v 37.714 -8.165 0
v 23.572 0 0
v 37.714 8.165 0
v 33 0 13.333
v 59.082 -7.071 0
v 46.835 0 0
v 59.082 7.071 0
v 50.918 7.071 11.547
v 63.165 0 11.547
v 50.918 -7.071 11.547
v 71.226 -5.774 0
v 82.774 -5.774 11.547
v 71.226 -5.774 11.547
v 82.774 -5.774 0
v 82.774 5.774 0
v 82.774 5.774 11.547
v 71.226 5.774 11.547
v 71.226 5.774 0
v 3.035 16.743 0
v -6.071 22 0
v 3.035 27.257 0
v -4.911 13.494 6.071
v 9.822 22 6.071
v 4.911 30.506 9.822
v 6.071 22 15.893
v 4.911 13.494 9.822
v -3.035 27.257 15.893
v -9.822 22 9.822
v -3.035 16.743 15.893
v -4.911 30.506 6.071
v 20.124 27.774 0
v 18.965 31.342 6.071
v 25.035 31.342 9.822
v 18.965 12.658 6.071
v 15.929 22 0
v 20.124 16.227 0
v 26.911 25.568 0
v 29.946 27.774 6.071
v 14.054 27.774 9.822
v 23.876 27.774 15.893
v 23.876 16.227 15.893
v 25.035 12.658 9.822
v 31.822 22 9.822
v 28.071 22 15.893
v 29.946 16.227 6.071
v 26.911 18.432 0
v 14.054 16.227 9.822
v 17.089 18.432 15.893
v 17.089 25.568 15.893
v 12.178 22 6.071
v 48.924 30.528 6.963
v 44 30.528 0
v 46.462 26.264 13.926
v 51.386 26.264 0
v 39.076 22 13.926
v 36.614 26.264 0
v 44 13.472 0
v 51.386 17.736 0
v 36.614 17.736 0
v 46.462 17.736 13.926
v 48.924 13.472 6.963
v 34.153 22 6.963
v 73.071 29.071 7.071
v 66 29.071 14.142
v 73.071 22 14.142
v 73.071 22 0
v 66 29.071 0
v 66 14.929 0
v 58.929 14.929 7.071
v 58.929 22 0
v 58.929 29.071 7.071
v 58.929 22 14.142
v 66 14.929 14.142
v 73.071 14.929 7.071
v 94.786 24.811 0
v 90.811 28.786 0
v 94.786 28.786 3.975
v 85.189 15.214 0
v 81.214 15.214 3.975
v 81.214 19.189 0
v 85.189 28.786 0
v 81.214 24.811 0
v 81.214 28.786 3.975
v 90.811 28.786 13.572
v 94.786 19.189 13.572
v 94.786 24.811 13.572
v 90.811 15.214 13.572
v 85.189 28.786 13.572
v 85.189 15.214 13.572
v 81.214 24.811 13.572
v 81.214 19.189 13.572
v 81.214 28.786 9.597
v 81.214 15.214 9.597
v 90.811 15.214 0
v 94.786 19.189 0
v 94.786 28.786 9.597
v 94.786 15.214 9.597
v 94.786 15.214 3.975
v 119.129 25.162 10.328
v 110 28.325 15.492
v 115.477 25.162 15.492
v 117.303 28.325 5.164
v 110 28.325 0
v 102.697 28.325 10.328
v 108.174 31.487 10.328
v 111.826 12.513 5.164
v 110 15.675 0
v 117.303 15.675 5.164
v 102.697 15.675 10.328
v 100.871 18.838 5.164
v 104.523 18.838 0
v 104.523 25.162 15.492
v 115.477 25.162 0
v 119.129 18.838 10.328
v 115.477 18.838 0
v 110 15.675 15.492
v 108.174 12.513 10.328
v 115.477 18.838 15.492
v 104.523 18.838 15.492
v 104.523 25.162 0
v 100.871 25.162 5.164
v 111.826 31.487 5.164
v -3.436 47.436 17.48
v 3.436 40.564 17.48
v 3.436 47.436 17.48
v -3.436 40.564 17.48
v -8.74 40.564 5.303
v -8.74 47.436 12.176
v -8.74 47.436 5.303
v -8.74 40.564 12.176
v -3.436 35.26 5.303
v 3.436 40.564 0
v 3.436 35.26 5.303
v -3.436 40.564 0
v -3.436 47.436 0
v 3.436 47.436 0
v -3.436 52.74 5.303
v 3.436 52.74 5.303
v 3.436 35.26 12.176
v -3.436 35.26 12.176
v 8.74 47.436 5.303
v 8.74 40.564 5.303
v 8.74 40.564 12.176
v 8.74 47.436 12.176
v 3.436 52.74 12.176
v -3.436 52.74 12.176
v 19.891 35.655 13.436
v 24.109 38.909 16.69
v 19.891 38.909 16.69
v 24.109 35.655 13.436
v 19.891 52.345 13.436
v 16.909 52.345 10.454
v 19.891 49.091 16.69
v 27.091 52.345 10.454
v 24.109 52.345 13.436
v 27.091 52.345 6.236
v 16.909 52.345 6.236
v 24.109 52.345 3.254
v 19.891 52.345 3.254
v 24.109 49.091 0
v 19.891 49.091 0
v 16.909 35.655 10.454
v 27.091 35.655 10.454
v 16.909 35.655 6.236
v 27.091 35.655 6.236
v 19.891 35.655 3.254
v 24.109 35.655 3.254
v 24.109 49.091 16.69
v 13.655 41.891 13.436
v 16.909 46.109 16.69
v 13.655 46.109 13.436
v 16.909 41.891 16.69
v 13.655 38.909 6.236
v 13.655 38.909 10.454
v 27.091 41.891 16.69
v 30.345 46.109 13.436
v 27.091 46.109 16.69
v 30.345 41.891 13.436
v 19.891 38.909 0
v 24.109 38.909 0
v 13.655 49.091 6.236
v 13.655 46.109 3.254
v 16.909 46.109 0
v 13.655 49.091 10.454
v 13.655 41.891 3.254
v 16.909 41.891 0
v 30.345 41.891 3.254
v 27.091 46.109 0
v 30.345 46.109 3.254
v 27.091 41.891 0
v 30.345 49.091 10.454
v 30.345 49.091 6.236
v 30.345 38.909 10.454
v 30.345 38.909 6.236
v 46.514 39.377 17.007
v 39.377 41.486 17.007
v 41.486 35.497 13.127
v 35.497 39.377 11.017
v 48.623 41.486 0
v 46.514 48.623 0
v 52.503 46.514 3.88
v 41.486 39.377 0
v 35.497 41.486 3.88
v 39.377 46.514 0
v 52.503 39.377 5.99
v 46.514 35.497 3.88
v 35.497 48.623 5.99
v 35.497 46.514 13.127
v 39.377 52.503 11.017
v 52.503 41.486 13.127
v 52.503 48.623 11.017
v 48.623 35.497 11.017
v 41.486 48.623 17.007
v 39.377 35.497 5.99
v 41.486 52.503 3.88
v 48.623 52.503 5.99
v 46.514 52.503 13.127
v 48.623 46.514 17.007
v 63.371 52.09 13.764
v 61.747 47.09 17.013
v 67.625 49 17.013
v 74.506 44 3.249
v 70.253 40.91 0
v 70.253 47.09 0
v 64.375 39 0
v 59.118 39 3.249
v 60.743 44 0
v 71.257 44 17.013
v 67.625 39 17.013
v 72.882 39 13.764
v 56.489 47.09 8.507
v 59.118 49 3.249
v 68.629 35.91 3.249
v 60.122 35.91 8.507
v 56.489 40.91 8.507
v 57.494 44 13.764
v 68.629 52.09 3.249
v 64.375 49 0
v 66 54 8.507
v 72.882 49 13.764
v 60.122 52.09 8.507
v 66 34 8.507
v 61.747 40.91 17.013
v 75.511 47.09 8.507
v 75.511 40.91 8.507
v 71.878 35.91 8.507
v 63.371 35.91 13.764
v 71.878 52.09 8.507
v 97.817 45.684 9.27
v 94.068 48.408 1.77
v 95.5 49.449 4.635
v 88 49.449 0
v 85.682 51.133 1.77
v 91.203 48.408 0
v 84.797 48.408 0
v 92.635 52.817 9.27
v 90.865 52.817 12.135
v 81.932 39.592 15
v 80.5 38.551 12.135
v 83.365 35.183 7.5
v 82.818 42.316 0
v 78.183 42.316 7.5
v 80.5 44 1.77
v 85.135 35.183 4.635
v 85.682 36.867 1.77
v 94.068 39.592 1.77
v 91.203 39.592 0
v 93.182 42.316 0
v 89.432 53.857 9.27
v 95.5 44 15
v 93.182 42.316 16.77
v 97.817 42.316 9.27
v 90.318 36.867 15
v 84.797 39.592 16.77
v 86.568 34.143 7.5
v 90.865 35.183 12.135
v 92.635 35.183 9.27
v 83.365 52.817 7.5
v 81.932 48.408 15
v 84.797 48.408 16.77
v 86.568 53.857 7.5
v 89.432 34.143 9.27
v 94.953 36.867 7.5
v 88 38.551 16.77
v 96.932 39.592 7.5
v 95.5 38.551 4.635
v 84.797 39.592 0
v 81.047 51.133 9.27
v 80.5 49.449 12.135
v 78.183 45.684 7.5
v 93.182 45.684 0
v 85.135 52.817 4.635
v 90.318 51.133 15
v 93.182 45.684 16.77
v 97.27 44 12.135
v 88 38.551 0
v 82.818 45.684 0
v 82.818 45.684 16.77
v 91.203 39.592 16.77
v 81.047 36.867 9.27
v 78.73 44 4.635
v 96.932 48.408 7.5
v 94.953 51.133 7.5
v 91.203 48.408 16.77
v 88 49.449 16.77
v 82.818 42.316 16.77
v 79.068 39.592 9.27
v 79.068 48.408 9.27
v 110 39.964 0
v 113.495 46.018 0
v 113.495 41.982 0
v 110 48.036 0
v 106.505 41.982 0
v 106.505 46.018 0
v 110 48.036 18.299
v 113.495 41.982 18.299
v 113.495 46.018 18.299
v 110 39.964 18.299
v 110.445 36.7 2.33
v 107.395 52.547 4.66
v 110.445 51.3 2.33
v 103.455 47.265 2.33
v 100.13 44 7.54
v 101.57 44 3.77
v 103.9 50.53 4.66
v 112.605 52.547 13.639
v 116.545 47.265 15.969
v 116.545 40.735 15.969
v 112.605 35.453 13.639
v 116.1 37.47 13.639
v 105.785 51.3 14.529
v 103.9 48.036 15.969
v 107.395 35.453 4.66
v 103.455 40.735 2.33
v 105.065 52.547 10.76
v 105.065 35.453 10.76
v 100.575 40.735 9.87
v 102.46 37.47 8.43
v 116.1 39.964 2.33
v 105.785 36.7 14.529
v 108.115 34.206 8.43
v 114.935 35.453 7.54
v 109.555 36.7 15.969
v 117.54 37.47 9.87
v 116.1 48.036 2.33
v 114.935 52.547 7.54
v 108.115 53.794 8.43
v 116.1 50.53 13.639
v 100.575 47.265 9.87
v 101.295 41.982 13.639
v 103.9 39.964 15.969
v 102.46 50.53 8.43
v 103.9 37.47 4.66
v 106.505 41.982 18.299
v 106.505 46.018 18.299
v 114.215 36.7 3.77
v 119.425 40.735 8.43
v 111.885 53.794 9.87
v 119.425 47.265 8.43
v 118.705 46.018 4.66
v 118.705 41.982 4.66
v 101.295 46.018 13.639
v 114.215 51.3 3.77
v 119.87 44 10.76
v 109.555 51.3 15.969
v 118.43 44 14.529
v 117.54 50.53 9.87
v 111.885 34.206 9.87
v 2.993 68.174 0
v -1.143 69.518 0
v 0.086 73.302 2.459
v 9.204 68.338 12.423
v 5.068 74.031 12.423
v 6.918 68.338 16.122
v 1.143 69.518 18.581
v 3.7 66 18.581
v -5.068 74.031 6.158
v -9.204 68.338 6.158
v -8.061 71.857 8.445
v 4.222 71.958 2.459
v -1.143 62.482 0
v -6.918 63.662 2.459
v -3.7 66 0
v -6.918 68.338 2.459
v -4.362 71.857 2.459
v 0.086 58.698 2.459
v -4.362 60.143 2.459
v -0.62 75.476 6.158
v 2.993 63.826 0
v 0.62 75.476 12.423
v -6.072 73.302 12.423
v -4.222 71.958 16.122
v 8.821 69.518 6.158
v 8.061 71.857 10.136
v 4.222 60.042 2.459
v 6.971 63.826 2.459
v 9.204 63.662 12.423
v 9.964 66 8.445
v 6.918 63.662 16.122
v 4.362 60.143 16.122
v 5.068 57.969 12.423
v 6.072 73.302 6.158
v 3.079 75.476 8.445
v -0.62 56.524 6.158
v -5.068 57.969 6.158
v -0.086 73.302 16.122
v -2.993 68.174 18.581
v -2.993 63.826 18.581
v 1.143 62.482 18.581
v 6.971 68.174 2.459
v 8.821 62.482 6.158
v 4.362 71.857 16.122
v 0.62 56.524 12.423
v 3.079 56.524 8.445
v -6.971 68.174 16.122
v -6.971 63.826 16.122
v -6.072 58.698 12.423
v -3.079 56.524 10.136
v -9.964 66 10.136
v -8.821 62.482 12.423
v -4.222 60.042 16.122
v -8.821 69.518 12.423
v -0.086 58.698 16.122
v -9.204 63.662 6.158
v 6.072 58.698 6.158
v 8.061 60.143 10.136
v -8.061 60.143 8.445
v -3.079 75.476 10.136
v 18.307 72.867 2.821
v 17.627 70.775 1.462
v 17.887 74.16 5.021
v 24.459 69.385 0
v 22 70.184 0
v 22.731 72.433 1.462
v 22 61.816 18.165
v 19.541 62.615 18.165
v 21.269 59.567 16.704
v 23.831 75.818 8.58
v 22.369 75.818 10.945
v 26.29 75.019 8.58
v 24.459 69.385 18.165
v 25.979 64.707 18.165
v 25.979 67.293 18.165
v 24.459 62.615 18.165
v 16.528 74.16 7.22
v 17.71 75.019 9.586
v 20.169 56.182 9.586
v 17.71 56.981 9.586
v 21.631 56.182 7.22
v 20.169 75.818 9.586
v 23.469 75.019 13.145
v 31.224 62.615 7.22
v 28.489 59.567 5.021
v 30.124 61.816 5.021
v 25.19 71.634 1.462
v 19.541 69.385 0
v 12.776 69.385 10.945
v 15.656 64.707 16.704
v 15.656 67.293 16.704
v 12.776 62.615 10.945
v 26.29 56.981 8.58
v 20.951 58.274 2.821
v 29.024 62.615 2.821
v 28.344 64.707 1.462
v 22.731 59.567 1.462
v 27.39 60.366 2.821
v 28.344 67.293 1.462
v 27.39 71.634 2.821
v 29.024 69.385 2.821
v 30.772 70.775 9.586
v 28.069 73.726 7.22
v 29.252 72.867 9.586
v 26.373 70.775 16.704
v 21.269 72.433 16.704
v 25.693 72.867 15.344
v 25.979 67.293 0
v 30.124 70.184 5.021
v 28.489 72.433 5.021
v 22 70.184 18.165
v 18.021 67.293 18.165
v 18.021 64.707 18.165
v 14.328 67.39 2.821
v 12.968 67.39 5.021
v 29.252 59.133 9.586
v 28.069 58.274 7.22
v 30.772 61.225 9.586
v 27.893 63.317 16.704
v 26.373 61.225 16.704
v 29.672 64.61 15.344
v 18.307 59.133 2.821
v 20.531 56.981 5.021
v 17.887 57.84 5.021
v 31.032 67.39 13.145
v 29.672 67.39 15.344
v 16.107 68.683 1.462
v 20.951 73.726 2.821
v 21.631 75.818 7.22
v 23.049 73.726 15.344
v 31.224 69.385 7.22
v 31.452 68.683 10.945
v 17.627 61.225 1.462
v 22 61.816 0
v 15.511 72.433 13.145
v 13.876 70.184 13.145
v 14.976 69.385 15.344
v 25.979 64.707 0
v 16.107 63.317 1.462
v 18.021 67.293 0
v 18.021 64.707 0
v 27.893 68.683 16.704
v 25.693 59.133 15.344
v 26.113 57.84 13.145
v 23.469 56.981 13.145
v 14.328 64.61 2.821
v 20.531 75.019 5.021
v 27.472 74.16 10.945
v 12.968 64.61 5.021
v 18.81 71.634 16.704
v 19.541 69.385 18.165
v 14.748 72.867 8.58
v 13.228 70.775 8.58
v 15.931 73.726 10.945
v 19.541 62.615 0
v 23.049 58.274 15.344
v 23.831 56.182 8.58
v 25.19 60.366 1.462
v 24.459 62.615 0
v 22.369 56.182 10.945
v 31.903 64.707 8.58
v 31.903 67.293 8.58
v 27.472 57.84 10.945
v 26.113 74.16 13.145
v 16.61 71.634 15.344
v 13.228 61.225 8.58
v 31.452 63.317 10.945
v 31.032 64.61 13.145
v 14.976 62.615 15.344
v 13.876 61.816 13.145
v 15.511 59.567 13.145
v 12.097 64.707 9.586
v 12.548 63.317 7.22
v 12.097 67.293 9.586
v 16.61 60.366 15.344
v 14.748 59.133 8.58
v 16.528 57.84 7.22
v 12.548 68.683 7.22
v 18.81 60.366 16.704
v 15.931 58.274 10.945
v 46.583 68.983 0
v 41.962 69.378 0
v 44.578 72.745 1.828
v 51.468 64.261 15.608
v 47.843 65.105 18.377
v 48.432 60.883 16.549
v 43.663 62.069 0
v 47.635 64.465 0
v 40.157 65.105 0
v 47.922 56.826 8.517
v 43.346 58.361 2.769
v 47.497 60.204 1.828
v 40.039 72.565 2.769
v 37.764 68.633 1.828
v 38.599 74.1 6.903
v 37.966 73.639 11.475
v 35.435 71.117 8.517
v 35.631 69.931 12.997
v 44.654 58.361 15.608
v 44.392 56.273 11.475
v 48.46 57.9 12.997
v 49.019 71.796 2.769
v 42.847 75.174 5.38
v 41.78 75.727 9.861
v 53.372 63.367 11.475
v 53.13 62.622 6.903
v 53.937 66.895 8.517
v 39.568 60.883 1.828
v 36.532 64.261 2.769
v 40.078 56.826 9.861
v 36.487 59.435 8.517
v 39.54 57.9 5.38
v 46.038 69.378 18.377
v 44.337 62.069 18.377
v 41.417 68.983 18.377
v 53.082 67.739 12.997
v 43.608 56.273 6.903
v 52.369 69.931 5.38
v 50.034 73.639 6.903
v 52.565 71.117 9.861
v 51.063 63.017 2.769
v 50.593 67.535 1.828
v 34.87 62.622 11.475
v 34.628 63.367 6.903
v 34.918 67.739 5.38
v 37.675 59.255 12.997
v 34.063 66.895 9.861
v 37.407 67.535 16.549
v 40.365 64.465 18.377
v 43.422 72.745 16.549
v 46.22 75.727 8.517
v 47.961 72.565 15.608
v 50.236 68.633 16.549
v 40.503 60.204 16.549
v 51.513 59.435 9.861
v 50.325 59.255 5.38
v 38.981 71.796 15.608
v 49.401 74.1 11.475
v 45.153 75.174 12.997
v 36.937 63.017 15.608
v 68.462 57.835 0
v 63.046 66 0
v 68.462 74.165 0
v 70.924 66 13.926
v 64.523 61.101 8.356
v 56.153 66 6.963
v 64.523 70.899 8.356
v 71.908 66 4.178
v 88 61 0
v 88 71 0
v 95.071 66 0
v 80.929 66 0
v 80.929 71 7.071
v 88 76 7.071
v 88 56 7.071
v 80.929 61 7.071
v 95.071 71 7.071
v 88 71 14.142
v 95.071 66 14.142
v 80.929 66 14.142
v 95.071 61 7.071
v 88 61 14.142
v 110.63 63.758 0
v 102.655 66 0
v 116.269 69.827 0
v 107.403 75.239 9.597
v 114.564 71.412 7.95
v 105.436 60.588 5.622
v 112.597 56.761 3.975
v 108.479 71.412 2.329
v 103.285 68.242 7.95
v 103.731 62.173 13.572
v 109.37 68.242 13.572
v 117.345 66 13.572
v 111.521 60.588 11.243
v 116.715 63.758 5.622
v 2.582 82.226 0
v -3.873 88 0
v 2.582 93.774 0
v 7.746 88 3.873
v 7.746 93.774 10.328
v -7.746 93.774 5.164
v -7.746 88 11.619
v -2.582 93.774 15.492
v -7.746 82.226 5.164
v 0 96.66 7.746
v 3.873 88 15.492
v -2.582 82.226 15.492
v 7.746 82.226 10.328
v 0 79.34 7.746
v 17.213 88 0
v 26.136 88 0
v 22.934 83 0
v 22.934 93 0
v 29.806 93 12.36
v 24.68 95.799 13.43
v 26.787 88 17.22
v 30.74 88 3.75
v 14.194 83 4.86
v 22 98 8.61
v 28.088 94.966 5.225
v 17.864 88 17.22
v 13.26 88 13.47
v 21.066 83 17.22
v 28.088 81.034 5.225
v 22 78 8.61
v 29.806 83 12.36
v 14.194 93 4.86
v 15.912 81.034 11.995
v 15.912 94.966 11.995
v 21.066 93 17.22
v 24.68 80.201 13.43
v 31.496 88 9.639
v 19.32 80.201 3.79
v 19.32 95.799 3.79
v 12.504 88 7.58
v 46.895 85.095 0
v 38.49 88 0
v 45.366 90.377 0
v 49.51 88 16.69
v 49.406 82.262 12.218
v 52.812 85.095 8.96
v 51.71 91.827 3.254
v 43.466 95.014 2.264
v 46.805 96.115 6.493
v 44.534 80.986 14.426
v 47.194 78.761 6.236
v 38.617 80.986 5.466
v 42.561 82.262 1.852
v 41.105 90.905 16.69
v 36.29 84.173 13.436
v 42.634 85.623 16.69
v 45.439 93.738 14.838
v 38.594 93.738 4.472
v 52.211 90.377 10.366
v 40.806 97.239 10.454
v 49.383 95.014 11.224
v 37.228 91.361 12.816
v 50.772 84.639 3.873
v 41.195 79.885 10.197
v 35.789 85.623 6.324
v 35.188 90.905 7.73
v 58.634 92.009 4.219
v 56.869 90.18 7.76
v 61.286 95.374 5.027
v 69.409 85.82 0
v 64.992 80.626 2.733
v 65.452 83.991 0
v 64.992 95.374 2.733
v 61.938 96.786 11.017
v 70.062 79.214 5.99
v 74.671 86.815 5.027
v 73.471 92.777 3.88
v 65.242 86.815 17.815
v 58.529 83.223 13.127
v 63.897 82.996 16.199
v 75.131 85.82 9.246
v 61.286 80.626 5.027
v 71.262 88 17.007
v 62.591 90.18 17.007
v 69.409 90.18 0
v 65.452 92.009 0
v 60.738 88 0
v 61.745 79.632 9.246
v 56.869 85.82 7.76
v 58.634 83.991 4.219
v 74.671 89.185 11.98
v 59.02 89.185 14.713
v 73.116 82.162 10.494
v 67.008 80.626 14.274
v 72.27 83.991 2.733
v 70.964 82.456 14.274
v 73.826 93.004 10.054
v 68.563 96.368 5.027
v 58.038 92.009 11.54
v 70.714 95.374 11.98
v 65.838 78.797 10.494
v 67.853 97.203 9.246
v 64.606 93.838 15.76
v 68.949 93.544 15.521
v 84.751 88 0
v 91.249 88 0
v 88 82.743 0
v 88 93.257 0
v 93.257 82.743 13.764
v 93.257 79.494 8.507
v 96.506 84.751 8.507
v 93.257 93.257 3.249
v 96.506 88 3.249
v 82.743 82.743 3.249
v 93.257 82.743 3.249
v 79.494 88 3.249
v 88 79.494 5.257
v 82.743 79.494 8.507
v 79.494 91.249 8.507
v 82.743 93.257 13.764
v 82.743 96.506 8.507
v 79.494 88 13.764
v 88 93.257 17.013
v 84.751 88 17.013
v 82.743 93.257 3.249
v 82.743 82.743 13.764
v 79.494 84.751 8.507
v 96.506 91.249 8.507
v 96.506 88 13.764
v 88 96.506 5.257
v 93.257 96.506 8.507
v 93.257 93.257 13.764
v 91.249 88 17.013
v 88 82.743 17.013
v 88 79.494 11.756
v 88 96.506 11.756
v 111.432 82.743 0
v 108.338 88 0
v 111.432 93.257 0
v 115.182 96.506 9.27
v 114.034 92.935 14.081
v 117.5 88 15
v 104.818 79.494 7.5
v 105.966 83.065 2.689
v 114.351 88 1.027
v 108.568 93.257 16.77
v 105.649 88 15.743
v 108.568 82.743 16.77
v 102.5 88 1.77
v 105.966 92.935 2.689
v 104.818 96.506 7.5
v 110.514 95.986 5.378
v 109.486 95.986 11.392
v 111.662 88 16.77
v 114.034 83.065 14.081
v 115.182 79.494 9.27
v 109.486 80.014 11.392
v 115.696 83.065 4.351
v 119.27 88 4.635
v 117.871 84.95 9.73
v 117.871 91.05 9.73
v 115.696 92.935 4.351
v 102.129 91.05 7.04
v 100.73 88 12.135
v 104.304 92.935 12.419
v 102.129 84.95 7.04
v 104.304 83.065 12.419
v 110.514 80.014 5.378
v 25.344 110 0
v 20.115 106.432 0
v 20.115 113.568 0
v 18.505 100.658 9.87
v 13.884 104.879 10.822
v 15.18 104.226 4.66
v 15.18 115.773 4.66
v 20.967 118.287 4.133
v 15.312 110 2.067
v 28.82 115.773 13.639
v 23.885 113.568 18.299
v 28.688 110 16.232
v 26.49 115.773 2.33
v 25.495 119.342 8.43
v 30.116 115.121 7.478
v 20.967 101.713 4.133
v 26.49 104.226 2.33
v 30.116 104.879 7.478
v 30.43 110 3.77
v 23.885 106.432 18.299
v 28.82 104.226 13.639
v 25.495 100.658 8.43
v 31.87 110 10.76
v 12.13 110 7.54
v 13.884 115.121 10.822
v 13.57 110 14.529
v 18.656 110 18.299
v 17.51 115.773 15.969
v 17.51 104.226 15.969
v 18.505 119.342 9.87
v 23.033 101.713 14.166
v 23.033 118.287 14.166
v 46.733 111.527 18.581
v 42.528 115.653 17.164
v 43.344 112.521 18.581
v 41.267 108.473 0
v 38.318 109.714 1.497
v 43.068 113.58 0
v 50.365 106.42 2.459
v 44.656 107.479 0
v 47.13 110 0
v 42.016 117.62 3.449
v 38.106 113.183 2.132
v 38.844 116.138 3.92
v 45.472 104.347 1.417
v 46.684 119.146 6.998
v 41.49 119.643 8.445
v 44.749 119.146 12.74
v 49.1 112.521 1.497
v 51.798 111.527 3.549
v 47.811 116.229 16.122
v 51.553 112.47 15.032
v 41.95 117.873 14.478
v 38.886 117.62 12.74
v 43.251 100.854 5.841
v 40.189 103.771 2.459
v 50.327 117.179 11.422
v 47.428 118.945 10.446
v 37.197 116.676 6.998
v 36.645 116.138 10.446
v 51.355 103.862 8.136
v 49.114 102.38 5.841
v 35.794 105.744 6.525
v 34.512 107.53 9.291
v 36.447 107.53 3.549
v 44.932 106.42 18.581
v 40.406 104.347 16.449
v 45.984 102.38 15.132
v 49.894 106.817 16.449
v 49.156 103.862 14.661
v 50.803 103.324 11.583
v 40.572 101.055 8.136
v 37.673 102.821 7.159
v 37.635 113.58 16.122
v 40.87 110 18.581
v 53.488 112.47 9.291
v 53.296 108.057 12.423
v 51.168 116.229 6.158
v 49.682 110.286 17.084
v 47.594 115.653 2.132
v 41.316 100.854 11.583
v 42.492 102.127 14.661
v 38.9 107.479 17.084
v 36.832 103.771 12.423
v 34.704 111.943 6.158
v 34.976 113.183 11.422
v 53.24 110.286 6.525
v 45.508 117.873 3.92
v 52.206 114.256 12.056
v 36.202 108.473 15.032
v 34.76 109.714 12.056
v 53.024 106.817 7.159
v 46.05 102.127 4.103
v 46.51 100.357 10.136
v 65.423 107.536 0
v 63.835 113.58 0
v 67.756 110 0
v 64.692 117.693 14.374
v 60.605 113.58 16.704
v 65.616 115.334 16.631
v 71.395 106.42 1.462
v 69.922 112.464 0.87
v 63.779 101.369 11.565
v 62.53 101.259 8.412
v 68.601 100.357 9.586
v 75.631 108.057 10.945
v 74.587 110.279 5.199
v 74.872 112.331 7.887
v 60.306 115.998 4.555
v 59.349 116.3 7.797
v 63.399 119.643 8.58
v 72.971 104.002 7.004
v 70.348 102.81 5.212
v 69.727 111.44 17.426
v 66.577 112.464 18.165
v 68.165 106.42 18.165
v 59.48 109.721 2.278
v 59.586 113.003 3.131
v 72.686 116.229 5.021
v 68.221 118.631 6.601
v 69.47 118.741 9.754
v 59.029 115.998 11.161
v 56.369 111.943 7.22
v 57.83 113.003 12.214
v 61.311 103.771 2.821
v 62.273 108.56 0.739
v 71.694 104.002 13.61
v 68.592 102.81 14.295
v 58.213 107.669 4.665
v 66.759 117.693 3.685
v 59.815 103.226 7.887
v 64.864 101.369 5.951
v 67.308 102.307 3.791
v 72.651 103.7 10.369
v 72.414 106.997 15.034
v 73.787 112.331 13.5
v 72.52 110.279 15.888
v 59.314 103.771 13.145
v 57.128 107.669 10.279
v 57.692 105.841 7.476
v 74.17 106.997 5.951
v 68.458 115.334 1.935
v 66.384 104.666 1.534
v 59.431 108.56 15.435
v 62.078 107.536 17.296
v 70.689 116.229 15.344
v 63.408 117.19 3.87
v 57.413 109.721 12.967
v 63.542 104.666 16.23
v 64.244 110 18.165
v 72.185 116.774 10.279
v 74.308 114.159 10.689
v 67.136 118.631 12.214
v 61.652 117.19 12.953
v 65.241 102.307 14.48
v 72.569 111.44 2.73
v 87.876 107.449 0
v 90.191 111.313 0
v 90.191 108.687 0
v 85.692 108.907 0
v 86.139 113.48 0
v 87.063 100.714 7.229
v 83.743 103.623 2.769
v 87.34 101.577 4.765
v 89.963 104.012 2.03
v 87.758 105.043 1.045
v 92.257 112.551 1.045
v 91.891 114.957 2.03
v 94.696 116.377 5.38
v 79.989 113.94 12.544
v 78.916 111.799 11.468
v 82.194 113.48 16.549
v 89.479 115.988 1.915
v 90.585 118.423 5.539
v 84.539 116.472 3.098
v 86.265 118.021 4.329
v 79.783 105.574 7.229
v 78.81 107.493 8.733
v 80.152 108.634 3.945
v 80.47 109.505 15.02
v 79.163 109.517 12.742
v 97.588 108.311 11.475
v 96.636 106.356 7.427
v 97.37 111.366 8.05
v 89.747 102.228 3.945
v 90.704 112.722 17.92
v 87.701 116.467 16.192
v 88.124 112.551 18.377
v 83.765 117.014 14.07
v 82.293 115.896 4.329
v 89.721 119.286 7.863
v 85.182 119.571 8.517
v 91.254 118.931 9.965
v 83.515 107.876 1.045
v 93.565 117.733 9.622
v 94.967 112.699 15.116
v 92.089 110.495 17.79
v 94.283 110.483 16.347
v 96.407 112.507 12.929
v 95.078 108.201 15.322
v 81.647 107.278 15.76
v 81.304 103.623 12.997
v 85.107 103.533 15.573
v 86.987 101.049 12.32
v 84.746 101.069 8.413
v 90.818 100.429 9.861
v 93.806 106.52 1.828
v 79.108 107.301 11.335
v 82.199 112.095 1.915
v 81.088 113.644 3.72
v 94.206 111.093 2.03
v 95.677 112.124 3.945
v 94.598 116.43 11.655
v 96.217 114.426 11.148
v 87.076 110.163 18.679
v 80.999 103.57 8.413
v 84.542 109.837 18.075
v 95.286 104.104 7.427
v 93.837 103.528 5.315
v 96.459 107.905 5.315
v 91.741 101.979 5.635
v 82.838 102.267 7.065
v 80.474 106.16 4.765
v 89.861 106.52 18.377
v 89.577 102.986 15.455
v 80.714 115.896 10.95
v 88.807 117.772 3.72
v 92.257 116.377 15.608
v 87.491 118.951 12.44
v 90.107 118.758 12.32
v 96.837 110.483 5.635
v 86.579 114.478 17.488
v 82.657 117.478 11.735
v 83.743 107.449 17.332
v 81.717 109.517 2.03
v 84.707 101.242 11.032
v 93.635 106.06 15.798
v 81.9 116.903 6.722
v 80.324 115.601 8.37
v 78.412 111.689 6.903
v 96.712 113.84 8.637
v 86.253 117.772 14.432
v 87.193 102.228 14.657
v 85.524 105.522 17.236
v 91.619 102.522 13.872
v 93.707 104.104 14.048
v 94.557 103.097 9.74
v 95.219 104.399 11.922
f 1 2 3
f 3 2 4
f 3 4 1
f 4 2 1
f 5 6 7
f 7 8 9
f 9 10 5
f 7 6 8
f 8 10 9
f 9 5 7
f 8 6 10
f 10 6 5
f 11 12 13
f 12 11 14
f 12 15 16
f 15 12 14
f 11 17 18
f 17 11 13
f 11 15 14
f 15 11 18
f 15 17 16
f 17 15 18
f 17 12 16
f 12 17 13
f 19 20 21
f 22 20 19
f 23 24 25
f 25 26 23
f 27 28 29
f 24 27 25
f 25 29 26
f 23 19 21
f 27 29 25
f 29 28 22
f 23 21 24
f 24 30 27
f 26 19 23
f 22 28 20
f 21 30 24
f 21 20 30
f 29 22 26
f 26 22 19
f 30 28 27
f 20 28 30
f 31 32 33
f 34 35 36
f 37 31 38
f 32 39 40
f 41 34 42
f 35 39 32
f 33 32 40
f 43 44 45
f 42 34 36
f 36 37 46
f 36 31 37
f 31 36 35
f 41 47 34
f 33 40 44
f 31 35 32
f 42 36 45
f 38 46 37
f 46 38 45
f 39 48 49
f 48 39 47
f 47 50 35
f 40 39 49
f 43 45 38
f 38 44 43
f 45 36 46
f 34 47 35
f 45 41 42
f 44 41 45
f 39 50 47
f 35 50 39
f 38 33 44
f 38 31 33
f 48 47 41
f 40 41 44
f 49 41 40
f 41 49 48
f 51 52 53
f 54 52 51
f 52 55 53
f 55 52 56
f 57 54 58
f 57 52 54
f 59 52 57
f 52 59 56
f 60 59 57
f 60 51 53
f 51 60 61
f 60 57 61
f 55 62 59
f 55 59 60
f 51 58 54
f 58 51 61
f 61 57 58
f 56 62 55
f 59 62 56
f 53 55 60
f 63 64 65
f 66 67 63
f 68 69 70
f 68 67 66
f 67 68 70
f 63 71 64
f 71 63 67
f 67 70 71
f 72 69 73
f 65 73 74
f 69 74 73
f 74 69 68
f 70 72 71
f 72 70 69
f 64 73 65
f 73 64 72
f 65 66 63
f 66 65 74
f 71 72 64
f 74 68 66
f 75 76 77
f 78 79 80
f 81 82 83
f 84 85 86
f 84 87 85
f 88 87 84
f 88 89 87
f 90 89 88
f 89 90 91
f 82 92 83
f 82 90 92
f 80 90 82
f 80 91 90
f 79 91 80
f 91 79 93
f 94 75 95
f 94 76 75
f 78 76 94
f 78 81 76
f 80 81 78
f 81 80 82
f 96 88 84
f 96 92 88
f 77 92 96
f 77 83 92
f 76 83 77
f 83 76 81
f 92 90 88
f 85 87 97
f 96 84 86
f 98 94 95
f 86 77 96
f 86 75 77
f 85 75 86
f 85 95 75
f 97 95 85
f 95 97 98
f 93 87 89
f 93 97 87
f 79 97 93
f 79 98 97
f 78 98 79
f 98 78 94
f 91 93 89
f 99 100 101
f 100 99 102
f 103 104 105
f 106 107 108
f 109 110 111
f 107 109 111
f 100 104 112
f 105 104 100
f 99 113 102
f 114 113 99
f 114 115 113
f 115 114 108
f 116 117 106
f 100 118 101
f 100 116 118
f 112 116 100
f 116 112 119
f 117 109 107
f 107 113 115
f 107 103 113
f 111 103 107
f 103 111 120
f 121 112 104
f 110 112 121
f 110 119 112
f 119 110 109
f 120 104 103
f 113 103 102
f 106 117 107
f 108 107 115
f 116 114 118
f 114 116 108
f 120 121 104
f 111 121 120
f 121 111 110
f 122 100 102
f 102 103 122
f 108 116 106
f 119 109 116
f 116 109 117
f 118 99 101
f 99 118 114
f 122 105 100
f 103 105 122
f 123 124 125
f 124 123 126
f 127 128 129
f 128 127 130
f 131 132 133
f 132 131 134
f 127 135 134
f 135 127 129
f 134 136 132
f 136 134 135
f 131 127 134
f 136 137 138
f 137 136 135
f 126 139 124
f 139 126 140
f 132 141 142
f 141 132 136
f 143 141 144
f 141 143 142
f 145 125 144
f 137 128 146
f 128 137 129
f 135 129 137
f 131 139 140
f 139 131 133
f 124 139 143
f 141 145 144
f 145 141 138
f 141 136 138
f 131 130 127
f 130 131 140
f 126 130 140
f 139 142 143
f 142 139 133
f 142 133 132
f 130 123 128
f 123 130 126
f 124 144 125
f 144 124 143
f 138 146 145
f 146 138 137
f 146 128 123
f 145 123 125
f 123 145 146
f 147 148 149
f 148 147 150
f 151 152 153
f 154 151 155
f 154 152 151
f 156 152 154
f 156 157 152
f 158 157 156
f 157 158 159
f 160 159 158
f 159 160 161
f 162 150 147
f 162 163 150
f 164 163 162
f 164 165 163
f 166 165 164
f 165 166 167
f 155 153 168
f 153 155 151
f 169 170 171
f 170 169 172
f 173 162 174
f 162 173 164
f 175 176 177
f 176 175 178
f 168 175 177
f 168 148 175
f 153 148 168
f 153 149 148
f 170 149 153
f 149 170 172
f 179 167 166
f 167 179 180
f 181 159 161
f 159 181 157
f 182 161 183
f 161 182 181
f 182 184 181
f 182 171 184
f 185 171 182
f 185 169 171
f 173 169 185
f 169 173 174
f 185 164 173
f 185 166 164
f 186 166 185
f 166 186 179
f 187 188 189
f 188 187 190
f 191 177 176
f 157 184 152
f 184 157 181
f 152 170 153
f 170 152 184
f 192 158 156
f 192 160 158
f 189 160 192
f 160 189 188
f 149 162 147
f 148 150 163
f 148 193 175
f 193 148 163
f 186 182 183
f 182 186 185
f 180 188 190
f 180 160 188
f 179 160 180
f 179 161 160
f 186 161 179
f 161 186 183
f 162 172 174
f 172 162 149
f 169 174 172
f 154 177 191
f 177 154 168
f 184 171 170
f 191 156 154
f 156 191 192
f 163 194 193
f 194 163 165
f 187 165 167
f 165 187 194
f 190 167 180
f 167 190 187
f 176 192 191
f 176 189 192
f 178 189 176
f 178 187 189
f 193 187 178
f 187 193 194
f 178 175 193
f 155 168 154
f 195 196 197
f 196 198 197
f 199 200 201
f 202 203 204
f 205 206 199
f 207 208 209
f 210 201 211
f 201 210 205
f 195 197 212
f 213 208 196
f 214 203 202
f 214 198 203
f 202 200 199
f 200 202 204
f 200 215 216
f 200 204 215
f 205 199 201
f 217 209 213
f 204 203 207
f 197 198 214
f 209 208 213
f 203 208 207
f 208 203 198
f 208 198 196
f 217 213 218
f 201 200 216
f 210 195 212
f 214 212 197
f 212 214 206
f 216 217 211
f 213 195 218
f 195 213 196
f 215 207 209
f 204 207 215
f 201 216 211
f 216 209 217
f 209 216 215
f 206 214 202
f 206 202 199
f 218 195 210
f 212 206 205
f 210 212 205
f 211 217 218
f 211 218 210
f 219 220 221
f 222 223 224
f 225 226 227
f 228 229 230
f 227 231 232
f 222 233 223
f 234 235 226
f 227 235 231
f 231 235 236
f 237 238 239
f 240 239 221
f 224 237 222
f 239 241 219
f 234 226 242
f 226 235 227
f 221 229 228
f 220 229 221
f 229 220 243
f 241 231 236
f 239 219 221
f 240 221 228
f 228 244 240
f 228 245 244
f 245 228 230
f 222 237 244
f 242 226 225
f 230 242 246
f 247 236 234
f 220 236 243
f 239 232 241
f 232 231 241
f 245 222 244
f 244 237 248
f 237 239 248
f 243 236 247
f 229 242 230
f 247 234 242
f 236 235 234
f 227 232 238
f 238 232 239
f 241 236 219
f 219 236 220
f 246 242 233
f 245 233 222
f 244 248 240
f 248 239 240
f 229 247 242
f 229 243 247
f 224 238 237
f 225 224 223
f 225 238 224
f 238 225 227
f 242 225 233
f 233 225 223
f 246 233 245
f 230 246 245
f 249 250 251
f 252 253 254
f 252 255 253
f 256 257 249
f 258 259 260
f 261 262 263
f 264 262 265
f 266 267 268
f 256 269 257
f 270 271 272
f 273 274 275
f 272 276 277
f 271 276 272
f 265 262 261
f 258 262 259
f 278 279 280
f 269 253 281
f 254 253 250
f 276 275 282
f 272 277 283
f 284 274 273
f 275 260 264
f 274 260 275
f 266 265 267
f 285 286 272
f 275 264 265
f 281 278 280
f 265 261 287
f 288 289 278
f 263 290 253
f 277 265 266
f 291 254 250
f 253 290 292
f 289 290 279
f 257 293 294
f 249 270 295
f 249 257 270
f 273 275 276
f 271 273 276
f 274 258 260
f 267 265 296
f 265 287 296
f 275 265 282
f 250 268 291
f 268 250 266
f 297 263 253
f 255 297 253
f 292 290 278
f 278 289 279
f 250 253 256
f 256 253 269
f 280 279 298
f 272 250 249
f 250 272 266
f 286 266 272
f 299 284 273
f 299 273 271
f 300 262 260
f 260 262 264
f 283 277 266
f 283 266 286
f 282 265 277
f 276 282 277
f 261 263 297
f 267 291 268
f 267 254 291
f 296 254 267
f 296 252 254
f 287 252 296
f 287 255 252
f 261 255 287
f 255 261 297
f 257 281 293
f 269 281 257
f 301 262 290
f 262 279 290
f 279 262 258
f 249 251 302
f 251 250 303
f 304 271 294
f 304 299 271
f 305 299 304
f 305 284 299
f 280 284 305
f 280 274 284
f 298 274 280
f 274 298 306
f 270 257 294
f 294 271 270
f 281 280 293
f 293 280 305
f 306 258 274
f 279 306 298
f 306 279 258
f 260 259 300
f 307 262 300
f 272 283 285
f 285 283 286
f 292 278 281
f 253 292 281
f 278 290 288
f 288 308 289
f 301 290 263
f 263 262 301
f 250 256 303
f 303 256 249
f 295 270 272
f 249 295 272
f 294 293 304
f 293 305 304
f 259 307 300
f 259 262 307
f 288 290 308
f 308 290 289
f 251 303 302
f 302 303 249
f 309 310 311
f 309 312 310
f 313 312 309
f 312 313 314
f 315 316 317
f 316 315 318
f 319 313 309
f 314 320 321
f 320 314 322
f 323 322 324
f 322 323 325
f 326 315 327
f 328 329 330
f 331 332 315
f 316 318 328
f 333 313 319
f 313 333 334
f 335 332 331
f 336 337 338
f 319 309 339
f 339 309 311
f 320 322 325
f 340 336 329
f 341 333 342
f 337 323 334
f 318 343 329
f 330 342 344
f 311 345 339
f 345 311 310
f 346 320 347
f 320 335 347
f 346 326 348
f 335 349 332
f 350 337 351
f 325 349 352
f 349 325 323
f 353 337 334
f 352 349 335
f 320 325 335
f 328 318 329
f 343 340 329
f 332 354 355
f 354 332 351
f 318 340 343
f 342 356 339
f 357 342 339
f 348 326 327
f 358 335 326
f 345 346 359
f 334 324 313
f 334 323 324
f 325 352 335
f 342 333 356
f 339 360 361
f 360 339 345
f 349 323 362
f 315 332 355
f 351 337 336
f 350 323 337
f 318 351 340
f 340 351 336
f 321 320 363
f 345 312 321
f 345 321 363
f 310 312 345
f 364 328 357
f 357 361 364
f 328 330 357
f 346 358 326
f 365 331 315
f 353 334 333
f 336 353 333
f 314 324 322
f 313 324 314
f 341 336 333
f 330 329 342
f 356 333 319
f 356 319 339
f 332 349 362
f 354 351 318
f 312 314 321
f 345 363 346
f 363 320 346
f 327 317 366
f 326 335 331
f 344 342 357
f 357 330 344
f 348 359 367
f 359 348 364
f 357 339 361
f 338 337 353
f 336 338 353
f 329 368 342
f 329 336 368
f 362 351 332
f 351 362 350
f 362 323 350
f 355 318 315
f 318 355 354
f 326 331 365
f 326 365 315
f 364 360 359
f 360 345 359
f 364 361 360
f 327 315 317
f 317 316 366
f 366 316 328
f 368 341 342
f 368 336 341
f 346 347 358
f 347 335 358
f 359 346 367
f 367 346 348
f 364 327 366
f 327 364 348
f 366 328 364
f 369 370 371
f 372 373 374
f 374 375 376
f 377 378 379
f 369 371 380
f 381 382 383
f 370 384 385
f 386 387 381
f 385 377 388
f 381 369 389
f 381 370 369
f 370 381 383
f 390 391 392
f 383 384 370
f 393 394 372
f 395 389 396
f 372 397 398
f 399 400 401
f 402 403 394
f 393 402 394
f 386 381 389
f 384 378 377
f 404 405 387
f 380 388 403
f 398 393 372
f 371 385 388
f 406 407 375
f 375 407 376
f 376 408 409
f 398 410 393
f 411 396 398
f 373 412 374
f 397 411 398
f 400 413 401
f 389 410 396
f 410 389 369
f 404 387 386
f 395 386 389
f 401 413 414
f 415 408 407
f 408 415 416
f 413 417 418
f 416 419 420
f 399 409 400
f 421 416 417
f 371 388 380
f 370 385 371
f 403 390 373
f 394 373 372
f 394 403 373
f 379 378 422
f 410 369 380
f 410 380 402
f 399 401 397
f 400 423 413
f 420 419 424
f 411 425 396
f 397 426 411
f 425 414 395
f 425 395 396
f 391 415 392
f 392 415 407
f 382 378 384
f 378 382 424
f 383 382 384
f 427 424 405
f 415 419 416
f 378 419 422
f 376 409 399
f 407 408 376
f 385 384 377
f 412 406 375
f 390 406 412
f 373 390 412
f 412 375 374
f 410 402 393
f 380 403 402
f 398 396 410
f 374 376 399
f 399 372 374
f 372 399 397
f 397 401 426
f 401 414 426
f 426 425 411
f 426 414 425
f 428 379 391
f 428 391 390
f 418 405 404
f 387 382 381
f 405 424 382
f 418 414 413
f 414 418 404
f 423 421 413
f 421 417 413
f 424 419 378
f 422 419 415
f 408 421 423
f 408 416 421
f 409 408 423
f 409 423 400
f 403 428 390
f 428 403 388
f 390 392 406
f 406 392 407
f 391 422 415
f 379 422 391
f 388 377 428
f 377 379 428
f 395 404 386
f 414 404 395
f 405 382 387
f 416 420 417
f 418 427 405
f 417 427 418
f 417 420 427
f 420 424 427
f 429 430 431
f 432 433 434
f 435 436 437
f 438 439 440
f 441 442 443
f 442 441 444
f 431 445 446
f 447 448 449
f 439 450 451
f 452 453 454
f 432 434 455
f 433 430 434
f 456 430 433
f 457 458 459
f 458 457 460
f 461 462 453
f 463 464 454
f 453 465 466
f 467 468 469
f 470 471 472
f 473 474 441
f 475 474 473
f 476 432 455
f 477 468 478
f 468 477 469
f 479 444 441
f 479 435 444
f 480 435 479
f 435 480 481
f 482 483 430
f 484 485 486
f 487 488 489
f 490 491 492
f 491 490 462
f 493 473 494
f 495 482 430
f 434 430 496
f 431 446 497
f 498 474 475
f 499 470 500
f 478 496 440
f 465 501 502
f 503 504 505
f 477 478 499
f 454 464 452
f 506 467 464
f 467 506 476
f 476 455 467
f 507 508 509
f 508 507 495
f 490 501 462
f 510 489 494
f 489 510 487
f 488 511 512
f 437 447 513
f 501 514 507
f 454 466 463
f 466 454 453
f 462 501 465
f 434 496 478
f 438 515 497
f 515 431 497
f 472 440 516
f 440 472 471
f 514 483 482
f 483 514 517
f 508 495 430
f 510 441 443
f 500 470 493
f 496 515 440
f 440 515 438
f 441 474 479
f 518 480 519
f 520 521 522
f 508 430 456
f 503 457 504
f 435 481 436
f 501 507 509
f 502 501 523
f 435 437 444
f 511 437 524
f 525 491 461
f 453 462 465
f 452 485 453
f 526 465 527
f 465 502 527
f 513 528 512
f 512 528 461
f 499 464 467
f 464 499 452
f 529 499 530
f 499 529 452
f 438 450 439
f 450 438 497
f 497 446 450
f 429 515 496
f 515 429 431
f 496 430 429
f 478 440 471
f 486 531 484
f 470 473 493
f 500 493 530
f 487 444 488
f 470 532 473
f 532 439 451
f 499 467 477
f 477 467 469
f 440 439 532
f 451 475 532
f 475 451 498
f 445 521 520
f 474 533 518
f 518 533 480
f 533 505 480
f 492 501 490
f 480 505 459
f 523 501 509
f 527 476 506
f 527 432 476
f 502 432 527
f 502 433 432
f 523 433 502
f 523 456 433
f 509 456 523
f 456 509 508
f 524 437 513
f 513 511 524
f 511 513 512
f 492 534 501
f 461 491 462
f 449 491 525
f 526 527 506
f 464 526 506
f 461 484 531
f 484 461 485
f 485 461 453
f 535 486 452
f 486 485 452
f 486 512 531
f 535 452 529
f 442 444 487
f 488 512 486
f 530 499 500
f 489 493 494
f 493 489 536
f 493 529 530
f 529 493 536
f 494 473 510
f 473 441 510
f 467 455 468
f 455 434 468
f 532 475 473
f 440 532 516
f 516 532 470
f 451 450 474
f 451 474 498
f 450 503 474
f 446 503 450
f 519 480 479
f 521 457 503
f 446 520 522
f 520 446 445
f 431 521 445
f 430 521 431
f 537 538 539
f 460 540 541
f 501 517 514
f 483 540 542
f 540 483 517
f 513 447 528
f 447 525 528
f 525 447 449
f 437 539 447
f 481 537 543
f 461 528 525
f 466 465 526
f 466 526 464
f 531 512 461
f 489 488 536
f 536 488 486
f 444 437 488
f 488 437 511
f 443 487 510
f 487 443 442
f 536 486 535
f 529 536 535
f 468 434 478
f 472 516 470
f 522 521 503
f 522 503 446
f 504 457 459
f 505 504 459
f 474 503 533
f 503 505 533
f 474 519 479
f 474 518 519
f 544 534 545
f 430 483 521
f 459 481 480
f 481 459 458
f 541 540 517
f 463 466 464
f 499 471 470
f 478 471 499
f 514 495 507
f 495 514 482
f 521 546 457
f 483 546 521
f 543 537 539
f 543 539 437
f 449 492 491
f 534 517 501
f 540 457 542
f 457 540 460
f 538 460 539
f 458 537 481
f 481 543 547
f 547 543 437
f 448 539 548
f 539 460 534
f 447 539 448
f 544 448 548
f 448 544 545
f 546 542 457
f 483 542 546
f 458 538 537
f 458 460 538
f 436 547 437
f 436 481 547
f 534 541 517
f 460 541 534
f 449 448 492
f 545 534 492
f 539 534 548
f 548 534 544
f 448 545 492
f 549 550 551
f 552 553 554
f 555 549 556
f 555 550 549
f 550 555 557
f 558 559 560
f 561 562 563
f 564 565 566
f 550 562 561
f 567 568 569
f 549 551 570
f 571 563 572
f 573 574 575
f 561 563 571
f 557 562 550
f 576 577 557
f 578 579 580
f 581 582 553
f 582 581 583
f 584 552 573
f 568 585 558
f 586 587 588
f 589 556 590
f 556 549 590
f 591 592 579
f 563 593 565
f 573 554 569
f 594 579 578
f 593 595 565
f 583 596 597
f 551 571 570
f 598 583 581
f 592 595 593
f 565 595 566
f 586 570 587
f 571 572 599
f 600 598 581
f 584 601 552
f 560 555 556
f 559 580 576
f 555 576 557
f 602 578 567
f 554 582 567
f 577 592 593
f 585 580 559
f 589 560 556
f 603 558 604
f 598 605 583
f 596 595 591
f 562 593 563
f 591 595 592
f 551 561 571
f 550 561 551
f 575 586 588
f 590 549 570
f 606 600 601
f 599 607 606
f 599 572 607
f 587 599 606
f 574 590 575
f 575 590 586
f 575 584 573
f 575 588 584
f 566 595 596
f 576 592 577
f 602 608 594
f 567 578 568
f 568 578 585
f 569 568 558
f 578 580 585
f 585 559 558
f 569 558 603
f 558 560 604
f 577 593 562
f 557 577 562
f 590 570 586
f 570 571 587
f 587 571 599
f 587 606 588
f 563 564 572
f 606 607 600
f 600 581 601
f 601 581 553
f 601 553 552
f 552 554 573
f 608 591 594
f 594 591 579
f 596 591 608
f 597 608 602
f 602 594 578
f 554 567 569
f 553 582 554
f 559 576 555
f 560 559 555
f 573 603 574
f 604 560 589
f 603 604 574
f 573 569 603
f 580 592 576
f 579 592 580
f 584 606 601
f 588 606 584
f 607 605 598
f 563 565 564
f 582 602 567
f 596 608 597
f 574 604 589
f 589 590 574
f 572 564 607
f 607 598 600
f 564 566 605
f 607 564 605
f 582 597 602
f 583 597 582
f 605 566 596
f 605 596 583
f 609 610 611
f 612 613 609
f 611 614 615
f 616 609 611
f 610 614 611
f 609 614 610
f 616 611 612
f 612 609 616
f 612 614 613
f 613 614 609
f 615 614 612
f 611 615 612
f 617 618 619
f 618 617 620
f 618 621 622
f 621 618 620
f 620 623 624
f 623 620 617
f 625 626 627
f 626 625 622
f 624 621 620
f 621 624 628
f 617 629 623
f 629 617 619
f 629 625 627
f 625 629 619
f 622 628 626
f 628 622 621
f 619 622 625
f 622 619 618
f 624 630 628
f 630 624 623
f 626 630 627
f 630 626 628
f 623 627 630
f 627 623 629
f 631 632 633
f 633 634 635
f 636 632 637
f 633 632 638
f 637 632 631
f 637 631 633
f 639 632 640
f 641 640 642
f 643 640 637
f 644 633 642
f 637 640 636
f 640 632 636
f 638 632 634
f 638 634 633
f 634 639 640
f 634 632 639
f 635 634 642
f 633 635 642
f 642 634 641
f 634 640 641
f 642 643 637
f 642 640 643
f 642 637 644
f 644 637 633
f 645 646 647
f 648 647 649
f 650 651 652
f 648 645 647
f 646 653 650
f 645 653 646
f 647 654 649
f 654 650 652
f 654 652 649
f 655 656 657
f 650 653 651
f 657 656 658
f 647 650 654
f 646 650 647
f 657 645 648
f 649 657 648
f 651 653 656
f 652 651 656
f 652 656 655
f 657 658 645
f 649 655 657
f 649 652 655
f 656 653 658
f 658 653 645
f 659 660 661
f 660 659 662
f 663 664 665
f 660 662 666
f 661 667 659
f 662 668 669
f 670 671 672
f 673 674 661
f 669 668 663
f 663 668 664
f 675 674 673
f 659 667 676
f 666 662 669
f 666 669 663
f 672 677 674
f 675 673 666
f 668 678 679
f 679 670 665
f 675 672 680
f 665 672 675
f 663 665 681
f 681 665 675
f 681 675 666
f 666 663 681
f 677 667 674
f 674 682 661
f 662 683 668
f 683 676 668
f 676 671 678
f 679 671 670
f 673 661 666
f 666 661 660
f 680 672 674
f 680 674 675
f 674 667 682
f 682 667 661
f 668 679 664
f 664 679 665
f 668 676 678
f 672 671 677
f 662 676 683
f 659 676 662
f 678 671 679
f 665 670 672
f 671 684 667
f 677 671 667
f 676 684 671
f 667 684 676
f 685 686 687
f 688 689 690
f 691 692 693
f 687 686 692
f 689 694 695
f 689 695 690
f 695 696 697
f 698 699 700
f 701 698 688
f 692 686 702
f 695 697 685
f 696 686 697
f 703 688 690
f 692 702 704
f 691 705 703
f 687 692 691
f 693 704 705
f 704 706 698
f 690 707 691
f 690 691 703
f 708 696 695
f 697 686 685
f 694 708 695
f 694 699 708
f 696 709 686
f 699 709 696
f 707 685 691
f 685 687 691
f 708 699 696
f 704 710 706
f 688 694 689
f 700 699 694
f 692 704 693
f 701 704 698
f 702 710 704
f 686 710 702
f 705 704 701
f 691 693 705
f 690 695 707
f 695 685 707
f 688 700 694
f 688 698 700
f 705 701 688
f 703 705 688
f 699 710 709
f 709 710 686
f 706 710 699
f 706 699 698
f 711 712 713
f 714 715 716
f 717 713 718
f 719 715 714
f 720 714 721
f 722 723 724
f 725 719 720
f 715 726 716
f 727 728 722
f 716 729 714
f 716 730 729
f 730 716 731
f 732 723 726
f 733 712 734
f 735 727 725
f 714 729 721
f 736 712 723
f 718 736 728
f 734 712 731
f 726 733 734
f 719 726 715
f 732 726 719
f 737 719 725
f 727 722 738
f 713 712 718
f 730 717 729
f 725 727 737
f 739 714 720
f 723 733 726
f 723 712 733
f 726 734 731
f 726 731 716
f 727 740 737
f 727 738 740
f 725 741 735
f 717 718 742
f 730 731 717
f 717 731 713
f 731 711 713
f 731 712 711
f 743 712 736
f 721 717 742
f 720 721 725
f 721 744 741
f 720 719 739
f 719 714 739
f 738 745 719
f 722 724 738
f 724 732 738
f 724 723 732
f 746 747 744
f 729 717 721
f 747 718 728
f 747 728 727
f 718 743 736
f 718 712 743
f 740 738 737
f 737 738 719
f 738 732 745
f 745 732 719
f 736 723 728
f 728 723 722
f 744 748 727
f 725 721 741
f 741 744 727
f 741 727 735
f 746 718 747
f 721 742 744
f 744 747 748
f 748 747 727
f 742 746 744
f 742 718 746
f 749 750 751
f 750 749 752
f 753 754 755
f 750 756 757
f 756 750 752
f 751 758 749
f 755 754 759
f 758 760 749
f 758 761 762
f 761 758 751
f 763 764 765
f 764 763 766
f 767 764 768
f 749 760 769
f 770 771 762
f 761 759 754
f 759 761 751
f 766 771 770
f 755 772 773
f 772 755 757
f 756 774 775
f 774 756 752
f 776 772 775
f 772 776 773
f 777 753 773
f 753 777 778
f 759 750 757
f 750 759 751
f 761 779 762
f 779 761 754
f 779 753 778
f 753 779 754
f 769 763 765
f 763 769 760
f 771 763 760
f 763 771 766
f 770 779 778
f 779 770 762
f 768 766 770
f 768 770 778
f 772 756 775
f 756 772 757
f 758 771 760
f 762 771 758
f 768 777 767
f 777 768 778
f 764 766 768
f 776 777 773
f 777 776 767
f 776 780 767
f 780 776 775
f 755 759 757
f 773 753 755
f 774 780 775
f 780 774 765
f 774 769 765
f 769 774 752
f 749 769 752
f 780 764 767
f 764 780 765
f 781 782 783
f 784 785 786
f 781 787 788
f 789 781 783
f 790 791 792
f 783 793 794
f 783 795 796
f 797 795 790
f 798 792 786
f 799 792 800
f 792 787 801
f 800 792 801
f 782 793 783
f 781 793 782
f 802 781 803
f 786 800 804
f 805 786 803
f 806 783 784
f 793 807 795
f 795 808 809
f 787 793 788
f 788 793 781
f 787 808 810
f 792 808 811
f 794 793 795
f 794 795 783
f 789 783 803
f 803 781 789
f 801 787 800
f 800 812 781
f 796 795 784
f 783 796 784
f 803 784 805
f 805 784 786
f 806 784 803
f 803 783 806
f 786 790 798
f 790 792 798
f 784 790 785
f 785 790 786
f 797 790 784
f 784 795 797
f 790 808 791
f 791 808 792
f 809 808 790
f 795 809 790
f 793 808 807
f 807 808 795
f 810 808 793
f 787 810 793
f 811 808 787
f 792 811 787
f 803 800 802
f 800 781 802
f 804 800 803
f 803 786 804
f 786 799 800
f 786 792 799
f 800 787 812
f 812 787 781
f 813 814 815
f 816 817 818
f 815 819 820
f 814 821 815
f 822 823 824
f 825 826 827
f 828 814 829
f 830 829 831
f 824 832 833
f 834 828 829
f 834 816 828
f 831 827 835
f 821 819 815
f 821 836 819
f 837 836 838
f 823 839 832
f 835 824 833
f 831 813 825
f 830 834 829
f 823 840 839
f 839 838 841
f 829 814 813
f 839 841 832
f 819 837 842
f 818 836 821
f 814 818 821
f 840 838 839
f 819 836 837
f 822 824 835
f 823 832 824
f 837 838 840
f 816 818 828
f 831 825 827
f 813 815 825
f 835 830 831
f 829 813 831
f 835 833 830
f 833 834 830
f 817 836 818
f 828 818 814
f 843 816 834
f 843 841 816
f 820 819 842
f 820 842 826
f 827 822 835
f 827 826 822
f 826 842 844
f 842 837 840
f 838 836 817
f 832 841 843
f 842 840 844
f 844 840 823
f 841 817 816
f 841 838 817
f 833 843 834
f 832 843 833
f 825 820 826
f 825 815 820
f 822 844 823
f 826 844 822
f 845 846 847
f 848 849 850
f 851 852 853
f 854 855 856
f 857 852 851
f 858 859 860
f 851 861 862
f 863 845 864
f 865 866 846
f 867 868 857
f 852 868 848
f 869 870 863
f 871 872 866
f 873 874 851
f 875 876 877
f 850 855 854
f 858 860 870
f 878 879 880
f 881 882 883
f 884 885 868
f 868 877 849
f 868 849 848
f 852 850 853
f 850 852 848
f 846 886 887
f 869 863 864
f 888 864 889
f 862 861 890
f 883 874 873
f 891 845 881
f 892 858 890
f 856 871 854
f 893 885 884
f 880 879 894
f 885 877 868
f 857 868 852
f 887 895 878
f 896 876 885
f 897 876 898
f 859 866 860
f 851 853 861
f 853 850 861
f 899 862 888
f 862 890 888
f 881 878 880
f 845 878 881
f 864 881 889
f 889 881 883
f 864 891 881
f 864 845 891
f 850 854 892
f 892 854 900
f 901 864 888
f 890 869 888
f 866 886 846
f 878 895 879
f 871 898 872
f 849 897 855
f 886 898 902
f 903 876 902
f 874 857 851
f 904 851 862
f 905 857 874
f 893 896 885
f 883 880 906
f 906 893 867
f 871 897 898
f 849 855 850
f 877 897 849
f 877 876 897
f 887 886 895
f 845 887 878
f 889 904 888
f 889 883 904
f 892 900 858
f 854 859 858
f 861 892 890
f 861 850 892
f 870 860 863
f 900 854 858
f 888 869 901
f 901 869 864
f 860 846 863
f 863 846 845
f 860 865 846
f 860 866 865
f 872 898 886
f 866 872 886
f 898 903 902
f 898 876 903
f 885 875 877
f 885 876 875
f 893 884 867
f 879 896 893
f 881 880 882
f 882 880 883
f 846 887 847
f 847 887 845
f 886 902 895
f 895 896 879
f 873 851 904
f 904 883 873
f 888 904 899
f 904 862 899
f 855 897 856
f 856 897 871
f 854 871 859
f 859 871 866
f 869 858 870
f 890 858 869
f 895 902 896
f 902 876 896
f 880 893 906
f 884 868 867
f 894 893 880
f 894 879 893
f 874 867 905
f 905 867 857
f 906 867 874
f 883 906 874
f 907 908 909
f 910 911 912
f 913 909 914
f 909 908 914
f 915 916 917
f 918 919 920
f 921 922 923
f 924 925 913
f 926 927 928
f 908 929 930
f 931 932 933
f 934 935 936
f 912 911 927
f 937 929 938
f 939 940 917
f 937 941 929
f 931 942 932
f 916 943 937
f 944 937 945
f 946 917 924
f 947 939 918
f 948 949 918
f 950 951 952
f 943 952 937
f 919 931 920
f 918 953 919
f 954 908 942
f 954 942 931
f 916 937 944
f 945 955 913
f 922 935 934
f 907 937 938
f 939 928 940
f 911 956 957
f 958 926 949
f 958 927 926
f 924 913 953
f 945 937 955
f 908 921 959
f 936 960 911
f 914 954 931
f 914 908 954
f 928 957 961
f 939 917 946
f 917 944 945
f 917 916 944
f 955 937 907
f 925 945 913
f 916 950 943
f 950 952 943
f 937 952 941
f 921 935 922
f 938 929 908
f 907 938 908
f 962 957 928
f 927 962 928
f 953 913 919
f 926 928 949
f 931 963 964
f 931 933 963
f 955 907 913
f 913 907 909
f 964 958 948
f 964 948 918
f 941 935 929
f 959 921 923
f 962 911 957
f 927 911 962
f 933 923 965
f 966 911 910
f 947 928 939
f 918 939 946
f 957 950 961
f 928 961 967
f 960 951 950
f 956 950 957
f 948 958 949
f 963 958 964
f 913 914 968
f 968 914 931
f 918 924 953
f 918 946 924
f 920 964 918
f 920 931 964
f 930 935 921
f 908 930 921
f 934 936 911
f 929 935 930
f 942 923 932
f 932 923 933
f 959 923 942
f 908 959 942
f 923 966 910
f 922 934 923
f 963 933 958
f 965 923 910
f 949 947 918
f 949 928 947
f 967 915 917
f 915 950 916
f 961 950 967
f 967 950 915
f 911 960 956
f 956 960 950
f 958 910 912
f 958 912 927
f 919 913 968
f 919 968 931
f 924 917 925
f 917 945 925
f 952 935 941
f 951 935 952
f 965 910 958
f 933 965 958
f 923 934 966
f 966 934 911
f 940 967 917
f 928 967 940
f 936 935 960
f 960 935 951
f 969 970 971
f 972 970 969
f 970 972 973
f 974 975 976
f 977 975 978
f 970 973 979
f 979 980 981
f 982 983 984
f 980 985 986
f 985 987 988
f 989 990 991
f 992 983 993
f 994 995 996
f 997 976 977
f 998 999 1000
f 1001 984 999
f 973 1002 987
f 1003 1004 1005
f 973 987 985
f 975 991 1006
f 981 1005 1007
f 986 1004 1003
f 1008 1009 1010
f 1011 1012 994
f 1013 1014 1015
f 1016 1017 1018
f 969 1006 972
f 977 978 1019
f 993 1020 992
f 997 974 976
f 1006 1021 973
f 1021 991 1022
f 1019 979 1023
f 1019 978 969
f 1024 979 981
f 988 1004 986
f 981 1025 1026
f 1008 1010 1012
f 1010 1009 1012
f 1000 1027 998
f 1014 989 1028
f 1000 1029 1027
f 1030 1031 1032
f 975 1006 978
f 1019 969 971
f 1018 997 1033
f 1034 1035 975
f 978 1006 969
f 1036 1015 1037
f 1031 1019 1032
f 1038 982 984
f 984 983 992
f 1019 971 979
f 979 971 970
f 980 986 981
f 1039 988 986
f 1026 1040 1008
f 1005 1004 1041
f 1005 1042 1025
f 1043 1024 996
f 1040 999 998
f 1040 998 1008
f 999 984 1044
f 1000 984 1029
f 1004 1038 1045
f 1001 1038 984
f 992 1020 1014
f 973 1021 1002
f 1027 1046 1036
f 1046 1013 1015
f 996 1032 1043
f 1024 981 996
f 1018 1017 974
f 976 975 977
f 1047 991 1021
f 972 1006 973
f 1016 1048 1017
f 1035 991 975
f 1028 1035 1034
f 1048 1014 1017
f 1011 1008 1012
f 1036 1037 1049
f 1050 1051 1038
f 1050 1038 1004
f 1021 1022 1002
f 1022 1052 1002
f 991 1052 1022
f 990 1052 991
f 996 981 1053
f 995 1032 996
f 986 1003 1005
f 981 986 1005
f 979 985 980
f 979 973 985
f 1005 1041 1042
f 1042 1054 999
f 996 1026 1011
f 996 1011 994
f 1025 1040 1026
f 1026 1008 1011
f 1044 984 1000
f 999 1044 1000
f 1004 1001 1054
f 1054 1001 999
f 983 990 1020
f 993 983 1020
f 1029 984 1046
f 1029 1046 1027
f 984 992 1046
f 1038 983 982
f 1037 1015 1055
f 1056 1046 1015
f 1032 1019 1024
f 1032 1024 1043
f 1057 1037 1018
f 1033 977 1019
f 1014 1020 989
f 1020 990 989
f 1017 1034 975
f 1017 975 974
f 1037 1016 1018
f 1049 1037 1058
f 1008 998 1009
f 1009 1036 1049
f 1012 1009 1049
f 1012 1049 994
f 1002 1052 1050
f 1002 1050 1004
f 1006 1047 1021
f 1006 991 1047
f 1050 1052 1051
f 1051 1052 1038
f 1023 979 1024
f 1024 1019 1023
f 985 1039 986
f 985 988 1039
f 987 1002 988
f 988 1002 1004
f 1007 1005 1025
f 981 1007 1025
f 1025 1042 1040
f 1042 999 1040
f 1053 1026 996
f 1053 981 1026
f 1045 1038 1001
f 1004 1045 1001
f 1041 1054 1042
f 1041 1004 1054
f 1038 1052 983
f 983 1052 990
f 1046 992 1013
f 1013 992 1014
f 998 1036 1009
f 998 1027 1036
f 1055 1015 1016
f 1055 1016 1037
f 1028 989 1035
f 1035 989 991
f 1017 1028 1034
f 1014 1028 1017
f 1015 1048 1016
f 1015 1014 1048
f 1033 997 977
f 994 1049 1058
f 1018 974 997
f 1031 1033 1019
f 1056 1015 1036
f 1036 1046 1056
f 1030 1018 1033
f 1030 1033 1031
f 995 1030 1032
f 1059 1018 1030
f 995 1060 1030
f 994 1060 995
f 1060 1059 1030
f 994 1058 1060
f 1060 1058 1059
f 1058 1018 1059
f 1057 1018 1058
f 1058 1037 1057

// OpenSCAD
include <polyhedra.scad>;

// circumscribed diameter
sh = 20;
// number per row
m = 6;
// layout distance
ld = 2;

p = [
    // 5 Platonic Solids
    tetrahedron,
    octahedron,
    cube,
    icosahedron,
    dodecahedron,
    // 13 Arhimedean Solids
    truncated_tetrahedron,
    cuboctahedron,
    truncated_cube,
    truncated_octahedron,
    rhombicuboctahedron,
    rhombitruncated_cuboctahedron,
    snub_cube,
    icosidodecahedron,
    truncated_dodecahedron,
    truncated_icosahedron,
    rhombicosidodecahedron,
    rhombitruncated_icosidodecahedron,
    snub_dodecahedron,
    // 13 Catalan Solids
    triakis_tetrahedron,
    rhombic_dodecahedron,
    triakis_octahedron,
    tetrakis_hexahedron,
    deltoidal_icositetrahedron,
    disdyakis_dodecahedron,
    pentagonal_icositetrahedron,
    rhombic_triacontahedron,
    triakis_icosahedron,
    pentakis_dodecahedron,
    deltoidal_hexecontahedron,
    disdyakis_triacontahedron,
    pentagonal_hexecontahedron
];

n = len(p);
last_row = floor((n - 1) / m);
first_row_c = floor((m + n - last_row * m) / 2);
skip1 = m - first_row_c;
last_row_c = n - last_row * m + skip1;
for(i = [0:n - 1]) {
    j = i + skip1;
    row = floor(j / m);
    ofs = 
        row == 0 ? -skip1 / 2 :
        row == last_row ? (m - last_row_c) / 2 :
        0;
    y = row * (sh + ld);
    x = (ofs + j % m) * (sh + ld);
    translate([x, y, 0])
        poly_fill(p[i], sh, circ=true);
}
